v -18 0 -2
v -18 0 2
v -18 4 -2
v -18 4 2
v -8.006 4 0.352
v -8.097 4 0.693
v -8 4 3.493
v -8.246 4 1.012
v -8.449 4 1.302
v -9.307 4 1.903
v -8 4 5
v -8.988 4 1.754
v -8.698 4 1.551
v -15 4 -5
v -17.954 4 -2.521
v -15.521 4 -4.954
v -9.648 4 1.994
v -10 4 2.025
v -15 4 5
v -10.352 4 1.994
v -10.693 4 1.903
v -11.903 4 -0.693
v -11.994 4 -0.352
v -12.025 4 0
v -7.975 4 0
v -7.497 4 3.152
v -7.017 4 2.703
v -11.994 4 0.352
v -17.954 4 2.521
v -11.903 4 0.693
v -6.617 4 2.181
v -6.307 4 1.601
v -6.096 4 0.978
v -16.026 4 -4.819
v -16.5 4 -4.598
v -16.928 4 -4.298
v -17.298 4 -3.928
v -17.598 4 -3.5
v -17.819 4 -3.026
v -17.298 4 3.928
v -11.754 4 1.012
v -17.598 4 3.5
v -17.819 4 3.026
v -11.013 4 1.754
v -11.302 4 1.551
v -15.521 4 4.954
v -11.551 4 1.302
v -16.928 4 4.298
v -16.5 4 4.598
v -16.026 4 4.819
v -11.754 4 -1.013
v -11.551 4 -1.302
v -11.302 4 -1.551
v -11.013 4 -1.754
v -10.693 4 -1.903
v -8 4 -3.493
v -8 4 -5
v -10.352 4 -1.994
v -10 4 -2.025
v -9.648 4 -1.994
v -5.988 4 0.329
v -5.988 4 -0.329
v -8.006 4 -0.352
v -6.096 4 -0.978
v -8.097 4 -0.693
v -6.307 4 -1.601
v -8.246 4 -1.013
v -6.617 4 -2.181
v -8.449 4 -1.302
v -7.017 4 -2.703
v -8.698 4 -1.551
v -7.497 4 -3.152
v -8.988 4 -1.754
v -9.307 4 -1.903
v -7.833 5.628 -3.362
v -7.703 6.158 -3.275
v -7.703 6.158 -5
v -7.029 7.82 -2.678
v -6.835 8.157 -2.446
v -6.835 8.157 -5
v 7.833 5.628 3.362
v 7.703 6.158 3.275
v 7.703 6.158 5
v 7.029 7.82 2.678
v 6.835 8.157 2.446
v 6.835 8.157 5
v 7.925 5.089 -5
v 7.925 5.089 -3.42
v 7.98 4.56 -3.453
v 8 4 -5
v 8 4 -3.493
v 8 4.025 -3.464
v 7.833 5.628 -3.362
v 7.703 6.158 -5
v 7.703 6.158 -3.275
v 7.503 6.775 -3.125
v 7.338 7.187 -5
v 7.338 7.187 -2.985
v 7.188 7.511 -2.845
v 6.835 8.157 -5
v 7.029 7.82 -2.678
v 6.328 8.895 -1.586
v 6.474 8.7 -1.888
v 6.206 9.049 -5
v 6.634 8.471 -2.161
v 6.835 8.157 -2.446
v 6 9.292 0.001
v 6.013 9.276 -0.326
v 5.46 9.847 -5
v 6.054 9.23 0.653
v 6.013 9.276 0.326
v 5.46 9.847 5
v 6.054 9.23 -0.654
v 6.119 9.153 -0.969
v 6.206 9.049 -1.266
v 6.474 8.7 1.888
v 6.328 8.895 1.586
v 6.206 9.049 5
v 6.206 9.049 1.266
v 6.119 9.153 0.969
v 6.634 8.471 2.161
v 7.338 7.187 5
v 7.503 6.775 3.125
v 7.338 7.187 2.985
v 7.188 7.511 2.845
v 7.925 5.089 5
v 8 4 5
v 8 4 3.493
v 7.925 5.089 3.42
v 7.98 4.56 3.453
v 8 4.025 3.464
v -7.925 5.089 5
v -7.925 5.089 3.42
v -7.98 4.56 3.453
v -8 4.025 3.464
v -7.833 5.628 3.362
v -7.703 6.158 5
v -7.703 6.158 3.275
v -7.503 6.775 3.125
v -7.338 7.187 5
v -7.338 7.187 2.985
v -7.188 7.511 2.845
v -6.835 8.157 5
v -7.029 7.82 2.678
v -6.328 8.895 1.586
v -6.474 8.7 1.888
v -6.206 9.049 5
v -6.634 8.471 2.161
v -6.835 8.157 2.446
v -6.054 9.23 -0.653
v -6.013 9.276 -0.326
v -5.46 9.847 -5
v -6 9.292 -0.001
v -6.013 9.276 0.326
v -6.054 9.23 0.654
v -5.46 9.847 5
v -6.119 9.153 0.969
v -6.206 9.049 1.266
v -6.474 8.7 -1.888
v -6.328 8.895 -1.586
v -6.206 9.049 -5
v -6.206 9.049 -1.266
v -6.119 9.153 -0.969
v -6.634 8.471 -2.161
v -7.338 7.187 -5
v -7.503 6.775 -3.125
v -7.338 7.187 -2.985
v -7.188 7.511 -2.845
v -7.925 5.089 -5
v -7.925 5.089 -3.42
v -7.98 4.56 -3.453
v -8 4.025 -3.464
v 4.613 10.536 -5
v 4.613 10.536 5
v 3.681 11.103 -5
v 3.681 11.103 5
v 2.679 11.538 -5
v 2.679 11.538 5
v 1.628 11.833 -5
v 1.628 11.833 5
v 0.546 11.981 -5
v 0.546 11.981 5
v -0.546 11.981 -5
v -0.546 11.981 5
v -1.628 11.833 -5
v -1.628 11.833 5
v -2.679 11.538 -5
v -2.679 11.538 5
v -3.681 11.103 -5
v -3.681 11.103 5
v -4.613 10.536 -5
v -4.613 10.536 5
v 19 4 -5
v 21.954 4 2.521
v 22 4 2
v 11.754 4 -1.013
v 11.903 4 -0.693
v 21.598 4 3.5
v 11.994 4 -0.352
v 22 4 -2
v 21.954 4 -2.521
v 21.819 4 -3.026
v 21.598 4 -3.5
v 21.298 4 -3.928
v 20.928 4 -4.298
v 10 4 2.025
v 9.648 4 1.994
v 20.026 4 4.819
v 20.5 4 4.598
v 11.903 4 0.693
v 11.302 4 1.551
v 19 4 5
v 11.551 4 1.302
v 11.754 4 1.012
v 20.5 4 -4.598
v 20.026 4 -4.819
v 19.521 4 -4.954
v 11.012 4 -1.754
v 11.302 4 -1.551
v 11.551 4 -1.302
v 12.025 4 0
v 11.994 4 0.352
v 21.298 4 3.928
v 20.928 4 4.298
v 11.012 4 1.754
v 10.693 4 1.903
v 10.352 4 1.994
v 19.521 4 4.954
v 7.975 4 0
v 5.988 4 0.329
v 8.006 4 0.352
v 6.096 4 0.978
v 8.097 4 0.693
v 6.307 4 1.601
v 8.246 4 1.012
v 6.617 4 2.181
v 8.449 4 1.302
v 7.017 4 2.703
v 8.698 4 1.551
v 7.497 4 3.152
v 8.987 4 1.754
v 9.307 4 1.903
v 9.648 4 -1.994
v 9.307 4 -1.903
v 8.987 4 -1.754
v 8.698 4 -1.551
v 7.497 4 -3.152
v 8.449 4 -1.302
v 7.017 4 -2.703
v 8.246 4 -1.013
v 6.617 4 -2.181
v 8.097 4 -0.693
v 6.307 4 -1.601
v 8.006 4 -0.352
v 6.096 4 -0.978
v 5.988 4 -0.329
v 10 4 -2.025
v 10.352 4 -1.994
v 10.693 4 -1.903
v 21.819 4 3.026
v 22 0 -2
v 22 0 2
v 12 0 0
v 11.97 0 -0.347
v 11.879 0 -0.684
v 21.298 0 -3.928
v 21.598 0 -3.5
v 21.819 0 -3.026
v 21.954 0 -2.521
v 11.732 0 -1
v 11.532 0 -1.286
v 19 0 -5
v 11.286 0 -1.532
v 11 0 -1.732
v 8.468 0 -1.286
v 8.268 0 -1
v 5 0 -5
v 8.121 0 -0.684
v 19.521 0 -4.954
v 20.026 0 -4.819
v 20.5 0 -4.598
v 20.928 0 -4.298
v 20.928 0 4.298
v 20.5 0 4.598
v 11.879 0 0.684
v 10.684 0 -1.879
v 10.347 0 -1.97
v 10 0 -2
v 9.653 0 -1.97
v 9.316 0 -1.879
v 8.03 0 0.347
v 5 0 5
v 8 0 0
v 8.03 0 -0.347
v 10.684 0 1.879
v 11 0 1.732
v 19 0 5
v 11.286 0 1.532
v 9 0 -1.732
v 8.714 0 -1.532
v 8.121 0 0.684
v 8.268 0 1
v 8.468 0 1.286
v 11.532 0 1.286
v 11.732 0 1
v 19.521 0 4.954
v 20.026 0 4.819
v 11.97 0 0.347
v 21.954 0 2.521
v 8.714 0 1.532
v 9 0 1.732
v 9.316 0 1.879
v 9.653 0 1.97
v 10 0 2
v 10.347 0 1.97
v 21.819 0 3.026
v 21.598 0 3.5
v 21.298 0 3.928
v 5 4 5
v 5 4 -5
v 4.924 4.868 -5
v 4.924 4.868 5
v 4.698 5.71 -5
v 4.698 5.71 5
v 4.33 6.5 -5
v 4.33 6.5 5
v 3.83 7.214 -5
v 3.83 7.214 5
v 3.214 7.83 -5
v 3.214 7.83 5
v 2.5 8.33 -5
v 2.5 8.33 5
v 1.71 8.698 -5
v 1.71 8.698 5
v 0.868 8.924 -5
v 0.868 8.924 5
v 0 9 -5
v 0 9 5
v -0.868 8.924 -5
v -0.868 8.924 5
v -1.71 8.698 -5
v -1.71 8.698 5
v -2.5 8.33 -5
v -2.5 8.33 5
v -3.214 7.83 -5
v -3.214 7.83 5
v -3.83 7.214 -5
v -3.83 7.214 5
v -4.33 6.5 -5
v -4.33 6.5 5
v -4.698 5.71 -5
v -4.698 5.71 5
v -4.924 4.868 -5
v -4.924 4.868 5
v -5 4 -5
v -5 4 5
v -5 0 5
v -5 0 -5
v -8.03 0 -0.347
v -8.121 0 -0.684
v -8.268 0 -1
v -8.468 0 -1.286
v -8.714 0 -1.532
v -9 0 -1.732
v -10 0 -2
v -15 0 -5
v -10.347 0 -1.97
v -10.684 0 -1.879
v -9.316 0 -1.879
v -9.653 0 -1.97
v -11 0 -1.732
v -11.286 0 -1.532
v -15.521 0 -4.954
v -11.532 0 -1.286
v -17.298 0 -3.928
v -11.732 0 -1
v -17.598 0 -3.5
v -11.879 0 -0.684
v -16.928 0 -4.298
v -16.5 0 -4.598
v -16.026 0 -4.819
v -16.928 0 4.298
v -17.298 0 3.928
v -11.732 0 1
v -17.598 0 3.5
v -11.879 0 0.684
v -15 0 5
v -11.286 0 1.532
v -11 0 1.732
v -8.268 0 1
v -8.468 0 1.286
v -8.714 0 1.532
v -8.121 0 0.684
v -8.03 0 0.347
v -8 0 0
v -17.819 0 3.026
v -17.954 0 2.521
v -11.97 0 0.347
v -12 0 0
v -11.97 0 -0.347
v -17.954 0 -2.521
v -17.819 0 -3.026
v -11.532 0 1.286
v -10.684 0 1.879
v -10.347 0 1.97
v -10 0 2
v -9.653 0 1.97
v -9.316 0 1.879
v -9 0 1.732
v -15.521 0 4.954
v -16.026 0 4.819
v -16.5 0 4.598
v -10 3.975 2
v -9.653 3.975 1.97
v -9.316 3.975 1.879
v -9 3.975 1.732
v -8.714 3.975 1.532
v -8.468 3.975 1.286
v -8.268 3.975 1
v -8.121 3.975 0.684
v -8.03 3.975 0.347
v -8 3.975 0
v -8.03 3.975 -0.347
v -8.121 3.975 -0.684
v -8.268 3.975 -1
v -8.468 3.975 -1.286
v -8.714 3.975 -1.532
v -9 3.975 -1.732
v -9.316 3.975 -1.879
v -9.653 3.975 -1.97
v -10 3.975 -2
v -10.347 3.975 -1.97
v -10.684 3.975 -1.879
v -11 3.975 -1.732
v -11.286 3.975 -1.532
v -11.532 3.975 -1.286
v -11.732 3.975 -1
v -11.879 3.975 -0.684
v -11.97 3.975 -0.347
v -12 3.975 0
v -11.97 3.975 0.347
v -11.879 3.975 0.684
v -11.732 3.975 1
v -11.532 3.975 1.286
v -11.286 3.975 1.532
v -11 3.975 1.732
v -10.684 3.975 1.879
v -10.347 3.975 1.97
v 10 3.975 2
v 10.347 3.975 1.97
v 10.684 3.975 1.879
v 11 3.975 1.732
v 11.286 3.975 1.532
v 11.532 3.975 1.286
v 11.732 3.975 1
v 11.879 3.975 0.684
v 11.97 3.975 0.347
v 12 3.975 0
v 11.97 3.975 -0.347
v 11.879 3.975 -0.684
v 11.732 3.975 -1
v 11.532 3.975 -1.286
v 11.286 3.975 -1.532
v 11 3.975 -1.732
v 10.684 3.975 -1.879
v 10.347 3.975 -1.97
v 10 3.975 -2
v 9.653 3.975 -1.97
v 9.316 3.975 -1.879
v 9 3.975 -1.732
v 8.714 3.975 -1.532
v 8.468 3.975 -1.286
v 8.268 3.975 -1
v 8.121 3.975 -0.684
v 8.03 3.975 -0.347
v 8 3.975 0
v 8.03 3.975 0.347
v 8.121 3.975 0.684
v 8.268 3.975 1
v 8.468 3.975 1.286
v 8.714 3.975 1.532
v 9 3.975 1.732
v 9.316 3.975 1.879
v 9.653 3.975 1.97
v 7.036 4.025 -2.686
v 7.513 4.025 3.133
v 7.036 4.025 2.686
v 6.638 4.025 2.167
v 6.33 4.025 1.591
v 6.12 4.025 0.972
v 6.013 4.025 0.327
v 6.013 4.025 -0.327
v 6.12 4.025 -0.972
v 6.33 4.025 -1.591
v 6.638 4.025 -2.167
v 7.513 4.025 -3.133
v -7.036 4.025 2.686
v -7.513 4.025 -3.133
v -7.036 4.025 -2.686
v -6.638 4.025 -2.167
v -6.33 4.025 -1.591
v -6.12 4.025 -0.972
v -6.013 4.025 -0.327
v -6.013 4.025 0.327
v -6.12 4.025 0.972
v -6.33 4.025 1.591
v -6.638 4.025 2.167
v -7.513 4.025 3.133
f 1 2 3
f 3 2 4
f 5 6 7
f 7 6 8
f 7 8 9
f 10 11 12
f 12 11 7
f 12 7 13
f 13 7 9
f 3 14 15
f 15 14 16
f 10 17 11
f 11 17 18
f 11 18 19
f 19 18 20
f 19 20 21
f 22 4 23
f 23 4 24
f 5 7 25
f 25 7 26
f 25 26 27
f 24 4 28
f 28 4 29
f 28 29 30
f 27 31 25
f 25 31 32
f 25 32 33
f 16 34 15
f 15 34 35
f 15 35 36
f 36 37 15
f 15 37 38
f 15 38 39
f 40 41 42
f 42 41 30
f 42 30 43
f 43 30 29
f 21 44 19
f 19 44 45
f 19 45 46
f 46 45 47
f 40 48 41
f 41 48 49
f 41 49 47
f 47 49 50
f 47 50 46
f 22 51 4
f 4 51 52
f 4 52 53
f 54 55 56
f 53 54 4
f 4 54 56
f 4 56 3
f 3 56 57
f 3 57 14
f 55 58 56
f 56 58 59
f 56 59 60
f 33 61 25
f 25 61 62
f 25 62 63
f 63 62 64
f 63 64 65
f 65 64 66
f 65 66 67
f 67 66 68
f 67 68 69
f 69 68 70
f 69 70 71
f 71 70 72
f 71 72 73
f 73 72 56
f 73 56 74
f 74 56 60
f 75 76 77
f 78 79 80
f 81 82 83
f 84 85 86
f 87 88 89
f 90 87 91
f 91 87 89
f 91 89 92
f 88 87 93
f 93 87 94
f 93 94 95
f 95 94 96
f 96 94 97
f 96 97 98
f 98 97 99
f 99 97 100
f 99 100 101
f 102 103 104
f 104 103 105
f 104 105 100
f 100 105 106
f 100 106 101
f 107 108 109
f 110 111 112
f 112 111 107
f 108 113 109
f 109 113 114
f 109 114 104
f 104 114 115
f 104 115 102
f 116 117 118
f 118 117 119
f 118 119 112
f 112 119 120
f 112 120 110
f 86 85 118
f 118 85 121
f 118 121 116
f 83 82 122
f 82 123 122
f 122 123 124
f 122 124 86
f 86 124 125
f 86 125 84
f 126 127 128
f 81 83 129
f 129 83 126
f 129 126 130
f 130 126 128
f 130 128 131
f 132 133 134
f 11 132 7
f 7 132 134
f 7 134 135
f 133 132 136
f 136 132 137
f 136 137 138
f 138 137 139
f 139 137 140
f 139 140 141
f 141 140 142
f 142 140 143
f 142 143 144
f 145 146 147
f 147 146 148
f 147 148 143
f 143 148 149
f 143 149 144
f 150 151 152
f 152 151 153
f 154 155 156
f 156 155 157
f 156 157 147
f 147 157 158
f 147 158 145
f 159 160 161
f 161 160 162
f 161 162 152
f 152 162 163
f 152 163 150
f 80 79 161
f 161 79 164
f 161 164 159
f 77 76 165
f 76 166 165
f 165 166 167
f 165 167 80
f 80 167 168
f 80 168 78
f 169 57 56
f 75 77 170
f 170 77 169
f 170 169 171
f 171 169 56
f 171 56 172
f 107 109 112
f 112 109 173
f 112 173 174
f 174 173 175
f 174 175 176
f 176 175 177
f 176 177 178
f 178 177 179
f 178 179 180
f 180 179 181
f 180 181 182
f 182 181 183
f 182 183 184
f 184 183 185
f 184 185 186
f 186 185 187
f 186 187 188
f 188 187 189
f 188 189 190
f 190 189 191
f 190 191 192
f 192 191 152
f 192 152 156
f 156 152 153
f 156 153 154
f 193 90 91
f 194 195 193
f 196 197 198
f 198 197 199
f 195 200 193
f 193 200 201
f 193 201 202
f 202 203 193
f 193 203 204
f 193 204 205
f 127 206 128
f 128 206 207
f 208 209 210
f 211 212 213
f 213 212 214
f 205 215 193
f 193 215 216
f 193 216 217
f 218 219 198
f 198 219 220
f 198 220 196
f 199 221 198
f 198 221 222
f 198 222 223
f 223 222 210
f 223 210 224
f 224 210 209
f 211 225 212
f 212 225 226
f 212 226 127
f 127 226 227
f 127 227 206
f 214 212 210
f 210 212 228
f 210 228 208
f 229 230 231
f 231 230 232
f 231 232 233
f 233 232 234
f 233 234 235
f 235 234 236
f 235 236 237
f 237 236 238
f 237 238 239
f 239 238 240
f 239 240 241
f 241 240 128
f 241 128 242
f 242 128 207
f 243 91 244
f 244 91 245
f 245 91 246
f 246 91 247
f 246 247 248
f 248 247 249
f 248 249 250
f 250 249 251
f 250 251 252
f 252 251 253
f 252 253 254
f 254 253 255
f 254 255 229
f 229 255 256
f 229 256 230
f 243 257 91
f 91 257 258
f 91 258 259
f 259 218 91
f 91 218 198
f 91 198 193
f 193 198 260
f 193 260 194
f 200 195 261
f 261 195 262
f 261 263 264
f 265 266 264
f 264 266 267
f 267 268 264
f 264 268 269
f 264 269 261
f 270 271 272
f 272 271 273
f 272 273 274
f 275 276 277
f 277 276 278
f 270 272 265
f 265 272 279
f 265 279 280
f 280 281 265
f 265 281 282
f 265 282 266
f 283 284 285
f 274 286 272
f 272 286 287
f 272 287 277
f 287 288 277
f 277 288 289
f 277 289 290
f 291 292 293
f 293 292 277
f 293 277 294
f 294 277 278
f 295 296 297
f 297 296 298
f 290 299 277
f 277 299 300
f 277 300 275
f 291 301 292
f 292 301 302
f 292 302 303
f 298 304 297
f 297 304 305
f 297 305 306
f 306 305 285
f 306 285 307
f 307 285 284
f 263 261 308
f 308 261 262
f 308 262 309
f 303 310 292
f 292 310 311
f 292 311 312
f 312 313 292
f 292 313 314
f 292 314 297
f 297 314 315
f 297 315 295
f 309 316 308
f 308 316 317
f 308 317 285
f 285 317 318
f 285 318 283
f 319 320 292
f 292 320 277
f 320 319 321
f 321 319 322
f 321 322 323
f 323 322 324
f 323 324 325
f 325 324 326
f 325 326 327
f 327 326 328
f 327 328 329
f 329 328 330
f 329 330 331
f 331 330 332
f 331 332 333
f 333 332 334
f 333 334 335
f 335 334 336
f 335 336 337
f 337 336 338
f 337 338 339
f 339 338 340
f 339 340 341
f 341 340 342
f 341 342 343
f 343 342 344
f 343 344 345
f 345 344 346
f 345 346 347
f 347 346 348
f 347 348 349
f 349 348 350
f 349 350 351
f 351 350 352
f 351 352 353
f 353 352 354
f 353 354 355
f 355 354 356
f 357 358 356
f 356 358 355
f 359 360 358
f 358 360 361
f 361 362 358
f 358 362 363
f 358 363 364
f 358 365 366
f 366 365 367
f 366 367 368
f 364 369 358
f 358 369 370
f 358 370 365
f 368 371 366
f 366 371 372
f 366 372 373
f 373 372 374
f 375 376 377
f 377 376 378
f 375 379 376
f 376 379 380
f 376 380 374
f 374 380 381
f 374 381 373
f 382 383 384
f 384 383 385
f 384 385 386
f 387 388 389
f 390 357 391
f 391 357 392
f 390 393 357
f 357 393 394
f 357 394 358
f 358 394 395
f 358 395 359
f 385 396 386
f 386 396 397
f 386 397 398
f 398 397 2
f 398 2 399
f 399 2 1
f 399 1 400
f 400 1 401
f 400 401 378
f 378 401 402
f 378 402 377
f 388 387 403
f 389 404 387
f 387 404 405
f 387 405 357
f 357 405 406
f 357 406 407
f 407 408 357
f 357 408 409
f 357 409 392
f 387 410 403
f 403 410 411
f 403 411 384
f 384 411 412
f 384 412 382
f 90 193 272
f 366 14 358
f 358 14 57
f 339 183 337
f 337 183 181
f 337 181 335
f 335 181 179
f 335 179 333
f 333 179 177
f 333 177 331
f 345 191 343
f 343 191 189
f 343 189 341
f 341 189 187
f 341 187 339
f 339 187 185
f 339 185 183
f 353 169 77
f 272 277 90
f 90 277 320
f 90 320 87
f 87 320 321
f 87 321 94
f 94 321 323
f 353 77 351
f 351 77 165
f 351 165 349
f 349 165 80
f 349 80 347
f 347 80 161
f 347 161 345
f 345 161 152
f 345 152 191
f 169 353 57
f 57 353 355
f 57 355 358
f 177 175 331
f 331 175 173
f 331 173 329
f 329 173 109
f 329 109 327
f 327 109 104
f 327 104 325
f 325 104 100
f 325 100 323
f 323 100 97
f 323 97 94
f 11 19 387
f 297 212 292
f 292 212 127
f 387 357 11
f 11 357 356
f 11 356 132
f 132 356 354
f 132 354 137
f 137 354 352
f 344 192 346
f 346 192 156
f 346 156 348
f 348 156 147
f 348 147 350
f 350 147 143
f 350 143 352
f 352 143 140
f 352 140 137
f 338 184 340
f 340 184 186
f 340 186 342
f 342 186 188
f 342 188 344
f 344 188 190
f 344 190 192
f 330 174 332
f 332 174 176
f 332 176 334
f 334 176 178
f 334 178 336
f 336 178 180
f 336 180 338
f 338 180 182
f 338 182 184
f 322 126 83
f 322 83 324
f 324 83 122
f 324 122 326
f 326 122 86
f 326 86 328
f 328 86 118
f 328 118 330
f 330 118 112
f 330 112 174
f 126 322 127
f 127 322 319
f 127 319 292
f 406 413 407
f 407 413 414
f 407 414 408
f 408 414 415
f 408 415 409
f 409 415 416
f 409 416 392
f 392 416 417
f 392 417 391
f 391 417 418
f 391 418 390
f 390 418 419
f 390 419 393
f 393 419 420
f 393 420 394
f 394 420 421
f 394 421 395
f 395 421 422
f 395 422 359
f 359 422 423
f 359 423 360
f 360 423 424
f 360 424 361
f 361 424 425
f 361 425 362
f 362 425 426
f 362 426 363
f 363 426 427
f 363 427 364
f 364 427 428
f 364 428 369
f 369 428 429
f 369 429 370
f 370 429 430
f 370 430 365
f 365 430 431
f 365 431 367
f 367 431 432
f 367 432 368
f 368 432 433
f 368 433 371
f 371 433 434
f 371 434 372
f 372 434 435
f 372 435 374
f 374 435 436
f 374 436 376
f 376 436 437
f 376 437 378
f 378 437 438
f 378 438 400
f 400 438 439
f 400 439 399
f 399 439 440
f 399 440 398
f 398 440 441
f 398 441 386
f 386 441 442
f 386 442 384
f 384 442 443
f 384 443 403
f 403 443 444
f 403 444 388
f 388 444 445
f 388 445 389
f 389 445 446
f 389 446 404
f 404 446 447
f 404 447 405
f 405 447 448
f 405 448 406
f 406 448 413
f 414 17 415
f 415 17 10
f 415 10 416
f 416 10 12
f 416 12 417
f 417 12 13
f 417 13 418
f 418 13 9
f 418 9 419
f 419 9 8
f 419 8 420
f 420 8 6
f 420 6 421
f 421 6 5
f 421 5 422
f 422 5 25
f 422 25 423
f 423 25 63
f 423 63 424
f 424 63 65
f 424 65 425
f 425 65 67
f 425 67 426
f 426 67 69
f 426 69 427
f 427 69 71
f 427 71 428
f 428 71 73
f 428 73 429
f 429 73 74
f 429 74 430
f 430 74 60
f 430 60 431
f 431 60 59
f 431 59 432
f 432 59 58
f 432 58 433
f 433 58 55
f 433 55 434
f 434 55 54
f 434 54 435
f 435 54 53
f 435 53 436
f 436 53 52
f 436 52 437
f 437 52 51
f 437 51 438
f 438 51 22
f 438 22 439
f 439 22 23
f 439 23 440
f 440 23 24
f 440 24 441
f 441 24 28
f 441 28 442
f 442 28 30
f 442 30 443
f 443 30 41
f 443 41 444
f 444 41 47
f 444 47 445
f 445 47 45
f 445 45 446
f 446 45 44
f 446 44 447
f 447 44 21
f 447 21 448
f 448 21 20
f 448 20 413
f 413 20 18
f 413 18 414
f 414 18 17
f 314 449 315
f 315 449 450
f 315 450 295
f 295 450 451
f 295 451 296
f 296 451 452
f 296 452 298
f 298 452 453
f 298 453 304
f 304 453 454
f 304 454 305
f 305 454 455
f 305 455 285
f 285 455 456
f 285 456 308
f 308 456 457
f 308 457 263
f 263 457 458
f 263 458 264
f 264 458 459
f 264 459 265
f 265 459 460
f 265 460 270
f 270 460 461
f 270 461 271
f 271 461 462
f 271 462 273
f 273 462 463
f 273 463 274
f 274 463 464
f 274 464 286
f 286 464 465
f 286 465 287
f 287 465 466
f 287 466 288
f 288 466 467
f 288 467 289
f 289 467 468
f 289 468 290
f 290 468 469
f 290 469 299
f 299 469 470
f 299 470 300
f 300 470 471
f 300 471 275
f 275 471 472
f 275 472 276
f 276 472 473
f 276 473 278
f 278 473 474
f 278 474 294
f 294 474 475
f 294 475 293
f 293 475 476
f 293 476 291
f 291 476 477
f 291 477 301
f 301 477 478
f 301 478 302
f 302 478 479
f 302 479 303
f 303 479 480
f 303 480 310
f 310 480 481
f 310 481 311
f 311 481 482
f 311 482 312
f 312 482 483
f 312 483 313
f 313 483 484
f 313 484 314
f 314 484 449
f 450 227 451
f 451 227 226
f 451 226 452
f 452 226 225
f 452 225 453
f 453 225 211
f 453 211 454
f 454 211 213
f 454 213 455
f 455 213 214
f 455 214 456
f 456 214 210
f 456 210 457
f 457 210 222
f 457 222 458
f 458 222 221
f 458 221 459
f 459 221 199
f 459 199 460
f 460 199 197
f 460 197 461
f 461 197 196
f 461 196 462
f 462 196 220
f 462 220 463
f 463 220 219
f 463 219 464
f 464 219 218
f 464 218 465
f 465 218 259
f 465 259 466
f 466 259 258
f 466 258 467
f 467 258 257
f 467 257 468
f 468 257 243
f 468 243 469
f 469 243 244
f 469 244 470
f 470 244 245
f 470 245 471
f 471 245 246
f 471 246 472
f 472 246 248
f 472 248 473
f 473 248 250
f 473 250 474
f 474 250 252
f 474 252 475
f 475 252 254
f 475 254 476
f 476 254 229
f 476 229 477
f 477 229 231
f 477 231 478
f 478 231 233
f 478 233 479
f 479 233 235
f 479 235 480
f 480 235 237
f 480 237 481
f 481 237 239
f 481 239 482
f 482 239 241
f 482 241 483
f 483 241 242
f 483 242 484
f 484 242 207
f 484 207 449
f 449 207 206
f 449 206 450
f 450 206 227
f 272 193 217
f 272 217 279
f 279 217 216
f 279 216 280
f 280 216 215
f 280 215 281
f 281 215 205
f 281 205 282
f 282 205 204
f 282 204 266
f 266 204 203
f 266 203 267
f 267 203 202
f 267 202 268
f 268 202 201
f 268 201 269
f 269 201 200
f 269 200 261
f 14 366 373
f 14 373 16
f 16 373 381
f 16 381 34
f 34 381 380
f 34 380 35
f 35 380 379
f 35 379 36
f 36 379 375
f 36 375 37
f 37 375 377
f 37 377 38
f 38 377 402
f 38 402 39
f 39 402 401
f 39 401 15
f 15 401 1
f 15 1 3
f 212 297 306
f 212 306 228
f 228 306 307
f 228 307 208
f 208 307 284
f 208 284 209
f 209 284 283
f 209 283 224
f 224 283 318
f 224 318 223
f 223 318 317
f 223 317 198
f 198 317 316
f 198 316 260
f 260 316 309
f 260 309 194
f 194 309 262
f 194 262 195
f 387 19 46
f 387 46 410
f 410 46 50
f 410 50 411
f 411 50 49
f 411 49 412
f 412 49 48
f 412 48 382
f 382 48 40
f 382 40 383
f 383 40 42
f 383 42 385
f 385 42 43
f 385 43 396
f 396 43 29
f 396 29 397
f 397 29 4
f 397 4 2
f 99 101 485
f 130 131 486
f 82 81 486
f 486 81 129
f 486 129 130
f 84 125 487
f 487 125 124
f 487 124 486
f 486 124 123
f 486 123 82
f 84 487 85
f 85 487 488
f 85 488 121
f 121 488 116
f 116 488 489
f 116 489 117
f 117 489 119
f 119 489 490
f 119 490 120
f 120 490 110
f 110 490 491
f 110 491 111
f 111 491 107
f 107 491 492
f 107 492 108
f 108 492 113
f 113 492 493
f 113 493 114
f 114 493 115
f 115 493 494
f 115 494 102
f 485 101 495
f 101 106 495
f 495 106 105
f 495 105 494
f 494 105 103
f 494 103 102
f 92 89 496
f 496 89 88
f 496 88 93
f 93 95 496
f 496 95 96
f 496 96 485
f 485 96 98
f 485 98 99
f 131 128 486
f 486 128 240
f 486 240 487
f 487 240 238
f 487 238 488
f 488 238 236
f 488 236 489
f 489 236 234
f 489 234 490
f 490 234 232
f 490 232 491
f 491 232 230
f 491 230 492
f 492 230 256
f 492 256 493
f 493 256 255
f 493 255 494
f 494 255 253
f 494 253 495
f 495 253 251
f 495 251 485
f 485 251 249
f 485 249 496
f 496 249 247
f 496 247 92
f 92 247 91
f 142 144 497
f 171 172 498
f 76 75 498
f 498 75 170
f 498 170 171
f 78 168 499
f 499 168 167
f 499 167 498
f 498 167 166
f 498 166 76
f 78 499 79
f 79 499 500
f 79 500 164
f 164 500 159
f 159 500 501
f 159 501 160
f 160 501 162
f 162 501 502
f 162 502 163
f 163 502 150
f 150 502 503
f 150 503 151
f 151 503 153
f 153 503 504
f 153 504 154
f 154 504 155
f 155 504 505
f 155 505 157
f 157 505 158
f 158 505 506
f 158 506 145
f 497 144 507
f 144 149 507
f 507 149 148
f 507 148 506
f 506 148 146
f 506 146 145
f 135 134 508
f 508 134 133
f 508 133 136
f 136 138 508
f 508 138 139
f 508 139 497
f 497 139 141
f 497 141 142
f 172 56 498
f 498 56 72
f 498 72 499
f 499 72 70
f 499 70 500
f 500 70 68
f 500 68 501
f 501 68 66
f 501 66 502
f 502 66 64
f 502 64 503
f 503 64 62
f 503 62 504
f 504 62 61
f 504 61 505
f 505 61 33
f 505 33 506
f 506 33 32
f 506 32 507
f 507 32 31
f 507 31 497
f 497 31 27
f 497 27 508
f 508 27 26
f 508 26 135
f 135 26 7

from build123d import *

# Parameters (mm, degrees)
BOSS_EXTRUDE1_DEPTH            = 5
BOSS_EXTRUDE1_DEPTH_BACK       = 5
F_4_0MM_DOWEL_HOLE2_AT_2_COUNT = 2
F_4_0MM_DOWEL_HOLE2_AT_2_PITCH = 20
FILLET1_R                      = 3
F_8_0MM_DOWEL_HOLE1_AT_2_COUNT = 2
F_8_0MM_DOWEL_HOLE1_AT_2_PITCH = 20


with BuildPart() as part:
    # Sketch1 → Boss-Extrude1 (new, two sides: drawn at the far end of the back side and taken through both)
    with BuildSketch(Plane.XY.offset(-BOSS_EXTRUDE1_DEPTH_BACK)):
        with BuildLine():
            Line((-18, 0), (-5, 0))
            Line((-5, 0), (-5, 4))
            ThreePointArc((-5, 4), (0, 9), (5, 4))
            Line((5, 4), (5, 0))
            Line((5, 0), (22, 0))
            Line((22, 0), (22, 4))
            Line((22, 4), (8, 4))
            ThreePointArc((8, 4), (0, 12), (-8, 4))
            Line((-8, 4), (-18, 4))
            Line((-18, 4), (-18, 0))
        make_face()
    extrude(amount=BOSS_EXTRUDE1_DEPTH + BOSS_EXTRUDE1_DEPTH_BACK)

    # Sketch7 → Ø4.0mm Dowel Hole2 (revolve, cut)
    with BuildSketch(Plane(origin=(10, 4, 0), x_dir=(0, 0, 1), z_dir=(1, 0, 0))):
        Polygon((0, 0), (0, 4), (2, 4), (2, 0.025), (2.025, 0), align=None)
    f_4_0mm_dowel_hole2 = revolve(axis=Axis((10, 10.35, 0), (0, -1, 0)), mode=Mode.SUBTRACT)

    # Ø4.0mm Dowel Hole2 at 2: Ø4.0mm Dowel Hole2 ×2
    with Locations(*[(-i * F_4_0MM_DOWEL_HOLE2_AT_2_PITCH, 0, 0) for i in range(1, F_4_0MM_DOWEL_HOLE2_AT_2_COUNT)]):
        add(f_4_0mm_dowel_hole2, mode=Mode.SUBTRACT)

    # Fillet1
    fillet1_edges = [part.edges().sort_by_distance(p)[0] for p in [
        (22, 2, 5),
        (-18, 2, 5),
        (22, 2, -5),
        (-18, 2, -5),
    ]]
    fillet(fillet1_edges, radius=FILLET1_R)

    # Sketch10 → Ø8.0mm Dowel Hole1 (revolve, cut)
    with BuildSketch(Plane(origin=(-10, 4, 0), x_dir=(0, 0, -1), z_dir=(1, 0, 0))):
        Polygon((0, 0), (0, 8), (4, 8), (4, 0.025), (4.025, 0), align=None)
    f_8_0mm_dowel_hole1 = revolve(axis=Axis((-10, -2.35, 0), (0, 1, 0)), mode=Mode.SUBTRACT)

    # Ø8.0mm Dowel Hole1 at 2: Ø8.0mm Dowel Hole1 ×2
    with Locations(*[(i * F_8_0MM_DOWEL_HOLE1_AT_2_PITCH, 0, 0) for i in range(1, F_8_0MM_DOWEL_HOLE1_AT_2_COUNT)]):
        add(f_8_0mm_dowel_hole1, mode=Mode.SUBTRACT)


solid = part.part
